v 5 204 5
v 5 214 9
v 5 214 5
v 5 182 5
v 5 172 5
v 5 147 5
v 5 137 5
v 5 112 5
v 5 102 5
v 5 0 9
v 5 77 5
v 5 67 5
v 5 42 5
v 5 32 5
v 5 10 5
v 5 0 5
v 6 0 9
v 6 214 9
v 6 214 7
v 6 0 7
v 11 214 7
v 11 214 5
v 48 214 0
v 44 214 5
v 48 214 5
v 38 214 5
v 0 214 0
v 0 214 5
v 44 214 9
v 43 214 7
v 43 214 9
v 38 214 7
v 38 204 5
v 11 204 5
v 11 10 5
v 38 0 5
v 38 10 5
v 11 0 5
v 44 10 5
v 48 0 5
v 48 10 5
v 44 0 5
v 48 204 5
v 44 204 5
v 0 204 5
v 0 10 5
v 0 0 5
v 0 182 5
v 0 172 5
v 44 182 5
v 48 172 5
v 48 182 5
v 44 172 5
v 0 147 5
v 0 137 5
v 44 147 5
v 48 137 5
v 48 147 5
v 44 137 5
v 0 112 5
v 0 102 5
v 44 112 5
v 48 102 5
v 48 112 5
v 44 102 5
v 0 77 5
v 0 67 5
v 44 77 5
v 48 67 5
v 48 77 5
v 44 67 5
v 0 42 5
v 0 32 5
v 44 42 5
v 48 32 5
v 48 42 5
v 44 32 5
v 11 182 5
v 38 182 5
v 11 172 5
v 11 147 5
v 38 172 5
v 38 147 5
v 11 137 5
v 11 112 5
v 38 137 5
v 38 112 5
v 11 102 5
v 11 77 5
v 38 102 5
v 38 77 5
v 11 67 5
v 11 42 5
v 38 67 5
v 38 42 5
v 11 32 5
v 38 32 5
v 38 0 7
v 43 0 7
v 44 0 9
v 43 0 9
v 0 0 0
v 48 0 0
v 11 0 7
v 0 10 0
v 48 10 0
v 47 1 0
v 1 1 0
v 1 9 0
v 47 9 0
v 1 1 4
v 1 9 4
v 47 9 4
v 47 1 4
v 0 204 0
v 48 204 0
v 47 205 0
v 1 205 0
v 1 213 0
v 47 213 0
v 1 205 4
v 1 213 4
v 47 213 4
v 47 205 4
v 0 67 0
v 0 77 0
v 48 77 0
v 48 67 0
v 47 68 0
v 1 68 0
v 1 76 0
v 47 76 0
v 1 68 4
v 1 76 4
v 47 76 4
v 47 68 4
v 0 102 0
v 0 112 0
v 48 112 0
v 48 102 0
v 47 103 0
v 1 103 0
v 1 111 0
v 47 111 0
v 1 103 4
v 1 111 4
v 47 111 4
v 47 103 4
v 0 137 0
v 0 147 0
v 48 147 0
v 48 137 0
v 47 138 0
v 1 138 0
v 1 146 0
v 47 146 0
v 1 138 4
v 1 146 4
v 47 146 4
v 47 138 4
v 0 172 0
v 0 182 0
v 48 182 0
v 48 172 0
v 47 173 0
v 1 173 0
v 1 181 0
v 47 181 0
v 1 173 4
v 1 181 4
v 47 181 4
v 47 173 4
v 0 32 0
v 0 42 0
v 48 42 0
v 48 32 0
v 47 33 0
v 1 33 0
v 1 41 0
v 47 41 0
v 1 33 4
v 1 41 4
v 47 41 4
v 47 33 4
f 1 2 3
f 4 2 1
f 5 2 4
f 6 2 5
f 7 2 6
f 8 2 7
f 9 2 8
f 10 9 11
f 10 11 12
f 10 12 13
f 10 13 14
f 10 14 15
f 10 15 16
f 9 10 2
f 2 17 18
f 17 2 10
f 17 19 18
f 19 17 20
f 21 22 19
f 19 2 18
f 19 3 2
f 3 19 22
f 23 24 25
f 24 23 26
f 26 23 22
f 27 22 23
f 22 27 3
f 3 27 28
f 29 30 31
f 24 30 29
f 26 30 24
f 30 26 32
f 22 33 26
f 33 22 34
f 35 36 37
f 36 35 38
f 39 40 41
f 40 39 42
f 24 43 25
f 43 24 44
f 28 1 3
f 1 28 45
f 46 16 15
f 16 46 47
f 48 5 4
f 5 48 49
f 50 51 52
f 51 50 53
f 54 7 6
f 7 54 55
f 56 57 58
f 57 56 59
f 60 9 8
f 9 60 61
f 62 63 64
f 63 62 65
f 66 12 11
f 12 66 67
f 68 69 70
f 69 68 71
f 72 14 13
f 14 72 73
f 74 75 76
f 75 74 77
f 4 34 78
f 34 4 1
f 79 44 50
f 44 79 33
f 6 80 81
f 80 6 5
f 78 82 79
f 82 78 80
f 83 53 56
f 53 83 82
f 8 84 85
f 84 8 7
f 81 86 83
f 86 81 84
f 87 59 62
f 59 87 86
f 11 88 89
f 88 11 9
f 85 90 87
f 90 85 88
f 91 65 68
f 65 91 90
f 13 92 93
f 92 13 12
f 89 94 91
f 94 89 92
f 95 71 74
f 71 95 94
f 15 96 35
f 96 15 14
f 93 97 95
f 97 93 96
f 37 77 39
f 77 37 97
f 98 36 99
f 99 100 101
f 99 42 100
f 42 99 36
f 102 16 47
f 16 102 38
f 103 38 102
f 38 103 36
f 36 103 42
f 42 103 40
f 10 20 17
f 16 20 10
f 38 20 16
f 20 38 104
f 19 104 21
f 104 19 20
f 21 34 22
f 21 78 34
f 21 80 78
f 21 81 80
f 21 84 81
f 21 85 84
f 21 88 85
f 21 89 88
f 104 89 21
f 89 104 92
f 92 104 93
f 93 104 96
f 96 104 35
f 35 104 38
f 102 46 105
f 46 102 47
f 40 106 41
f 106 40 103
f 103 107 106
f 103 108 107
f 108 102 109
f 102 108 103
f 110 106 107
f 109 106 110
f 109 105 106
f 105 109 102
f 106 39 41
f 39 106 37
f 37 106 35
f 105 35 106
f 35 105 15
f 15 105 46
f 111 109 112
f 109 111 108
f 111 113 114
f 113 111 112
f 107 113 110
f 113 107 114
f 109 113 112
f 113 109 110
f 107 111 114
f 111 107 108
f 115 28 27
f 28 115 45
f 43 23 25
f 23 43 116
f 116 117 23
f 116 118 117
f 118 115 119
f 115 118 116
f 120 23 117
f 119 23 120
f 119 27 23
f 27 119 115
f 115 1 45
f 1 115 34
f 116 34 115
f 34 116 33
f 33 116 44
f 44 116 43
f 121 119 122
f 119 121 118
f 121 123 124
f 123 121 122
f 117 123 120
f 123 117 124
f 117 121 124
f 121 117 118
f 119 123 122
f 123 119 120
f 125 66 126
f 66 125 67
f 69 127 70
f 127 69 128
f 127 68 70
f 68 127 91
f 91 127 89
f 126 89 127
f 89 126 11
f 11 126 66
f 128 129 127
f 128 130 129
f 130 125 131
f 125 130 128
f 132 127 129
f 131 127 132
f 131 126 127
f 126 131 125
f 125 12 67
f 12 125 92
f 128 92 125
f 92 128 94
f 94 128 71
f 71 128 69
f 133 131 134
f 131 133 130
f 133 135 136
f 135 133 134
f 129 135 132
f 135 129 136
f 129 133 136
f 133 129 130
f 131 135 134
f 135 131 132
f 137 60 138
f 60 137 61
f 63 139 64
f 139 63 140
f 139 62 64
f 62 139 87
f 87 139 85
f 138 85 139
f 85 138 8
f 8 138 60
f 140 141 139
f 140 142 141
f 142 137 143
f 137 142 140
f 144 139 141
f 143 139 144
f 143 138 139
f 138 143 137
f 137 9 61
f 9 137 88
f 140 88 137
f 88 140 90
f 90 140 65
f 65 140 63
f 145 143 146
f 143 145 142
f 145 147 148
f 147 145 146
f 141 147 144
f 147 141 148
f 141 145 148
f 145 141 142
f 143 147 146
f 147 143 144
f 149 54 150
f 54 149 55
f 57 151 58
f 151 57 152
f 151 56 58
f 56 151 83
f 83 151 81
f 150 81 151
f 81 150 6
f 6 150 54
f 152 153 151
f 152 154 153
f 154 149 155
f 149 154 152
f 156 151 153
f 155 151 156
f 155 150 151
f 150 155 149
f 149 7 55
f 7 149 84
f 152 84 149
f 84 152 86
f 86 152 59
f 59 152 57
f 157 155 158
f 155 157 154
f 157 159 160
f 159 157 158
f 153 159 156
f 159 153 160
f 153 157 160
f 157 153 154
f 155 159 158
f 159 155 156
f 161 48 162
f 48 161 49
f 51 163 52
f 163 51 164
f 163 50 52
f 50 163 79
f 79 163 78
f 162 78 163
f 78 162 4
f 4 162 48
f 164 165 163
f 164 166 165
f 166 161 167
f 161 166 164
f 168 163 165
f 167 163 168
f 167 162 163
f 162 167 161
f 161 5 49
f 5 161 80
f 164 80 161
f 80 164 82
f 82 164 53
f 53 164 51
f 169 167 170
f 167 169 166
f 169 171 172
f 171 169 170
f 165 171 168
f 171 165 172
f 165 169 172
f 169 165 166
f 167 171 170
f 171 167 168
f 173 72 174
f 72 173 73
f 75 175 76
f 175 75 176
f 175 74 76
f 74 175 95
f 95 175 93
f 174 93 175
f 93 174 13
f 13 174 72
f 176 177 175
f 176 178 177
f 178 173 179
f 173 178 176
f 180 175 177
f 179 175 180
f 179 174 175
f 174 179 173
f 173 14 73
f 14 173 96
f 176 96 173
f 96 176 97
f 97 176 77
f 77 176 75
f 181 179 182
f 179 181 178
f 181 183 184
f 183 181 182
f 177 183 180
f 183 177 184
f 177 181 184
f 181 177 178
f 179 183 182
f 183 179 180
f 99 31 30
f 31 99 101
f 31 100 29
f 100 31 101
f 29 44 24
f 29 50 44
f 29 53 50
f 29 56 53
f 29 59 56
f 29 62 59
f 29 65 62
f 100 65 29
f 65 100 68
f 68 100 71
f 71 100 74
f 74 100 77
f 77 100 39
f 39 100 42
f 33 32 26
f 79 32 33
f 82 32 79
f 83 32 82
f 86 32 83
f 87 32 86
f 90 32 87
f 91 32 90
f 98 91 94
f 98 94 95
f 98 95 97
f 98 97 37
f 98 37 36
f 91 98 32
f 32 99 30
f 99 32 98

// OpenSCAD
//tout en dure puis je ferais des variables + refactoring
 difference() {cube([48,10,5]);translate ([1,1,0])cube([46,8,4]);}
 difference() {
translate ([0,32,0]) cube([48,10,5]);
translate ([1,32+1,0]) cube([46,8,4]);
}
for (i = [2:5]) {
	difference() {
		translate ([0,32+(35*(i-1)),0]) cube([48,10,5]);
		translate ([1,32+(35*(i-1))+1,0]) cube([46,8,4]);
	}
}
difference() {
	translate ([0,(32*2+35*4),0]) cube([48,10,5]);translate ([1,(32*2+35*4)+1,0]) cube([46,8,4]);
}
translate ([5,0,5]) union() {cube([1,214,4]);cube([6,214,2]);}
translate ([38,0,5])  union() {translate([5,0,0])cube([1,214,4]);cube([6,214,2]);}
